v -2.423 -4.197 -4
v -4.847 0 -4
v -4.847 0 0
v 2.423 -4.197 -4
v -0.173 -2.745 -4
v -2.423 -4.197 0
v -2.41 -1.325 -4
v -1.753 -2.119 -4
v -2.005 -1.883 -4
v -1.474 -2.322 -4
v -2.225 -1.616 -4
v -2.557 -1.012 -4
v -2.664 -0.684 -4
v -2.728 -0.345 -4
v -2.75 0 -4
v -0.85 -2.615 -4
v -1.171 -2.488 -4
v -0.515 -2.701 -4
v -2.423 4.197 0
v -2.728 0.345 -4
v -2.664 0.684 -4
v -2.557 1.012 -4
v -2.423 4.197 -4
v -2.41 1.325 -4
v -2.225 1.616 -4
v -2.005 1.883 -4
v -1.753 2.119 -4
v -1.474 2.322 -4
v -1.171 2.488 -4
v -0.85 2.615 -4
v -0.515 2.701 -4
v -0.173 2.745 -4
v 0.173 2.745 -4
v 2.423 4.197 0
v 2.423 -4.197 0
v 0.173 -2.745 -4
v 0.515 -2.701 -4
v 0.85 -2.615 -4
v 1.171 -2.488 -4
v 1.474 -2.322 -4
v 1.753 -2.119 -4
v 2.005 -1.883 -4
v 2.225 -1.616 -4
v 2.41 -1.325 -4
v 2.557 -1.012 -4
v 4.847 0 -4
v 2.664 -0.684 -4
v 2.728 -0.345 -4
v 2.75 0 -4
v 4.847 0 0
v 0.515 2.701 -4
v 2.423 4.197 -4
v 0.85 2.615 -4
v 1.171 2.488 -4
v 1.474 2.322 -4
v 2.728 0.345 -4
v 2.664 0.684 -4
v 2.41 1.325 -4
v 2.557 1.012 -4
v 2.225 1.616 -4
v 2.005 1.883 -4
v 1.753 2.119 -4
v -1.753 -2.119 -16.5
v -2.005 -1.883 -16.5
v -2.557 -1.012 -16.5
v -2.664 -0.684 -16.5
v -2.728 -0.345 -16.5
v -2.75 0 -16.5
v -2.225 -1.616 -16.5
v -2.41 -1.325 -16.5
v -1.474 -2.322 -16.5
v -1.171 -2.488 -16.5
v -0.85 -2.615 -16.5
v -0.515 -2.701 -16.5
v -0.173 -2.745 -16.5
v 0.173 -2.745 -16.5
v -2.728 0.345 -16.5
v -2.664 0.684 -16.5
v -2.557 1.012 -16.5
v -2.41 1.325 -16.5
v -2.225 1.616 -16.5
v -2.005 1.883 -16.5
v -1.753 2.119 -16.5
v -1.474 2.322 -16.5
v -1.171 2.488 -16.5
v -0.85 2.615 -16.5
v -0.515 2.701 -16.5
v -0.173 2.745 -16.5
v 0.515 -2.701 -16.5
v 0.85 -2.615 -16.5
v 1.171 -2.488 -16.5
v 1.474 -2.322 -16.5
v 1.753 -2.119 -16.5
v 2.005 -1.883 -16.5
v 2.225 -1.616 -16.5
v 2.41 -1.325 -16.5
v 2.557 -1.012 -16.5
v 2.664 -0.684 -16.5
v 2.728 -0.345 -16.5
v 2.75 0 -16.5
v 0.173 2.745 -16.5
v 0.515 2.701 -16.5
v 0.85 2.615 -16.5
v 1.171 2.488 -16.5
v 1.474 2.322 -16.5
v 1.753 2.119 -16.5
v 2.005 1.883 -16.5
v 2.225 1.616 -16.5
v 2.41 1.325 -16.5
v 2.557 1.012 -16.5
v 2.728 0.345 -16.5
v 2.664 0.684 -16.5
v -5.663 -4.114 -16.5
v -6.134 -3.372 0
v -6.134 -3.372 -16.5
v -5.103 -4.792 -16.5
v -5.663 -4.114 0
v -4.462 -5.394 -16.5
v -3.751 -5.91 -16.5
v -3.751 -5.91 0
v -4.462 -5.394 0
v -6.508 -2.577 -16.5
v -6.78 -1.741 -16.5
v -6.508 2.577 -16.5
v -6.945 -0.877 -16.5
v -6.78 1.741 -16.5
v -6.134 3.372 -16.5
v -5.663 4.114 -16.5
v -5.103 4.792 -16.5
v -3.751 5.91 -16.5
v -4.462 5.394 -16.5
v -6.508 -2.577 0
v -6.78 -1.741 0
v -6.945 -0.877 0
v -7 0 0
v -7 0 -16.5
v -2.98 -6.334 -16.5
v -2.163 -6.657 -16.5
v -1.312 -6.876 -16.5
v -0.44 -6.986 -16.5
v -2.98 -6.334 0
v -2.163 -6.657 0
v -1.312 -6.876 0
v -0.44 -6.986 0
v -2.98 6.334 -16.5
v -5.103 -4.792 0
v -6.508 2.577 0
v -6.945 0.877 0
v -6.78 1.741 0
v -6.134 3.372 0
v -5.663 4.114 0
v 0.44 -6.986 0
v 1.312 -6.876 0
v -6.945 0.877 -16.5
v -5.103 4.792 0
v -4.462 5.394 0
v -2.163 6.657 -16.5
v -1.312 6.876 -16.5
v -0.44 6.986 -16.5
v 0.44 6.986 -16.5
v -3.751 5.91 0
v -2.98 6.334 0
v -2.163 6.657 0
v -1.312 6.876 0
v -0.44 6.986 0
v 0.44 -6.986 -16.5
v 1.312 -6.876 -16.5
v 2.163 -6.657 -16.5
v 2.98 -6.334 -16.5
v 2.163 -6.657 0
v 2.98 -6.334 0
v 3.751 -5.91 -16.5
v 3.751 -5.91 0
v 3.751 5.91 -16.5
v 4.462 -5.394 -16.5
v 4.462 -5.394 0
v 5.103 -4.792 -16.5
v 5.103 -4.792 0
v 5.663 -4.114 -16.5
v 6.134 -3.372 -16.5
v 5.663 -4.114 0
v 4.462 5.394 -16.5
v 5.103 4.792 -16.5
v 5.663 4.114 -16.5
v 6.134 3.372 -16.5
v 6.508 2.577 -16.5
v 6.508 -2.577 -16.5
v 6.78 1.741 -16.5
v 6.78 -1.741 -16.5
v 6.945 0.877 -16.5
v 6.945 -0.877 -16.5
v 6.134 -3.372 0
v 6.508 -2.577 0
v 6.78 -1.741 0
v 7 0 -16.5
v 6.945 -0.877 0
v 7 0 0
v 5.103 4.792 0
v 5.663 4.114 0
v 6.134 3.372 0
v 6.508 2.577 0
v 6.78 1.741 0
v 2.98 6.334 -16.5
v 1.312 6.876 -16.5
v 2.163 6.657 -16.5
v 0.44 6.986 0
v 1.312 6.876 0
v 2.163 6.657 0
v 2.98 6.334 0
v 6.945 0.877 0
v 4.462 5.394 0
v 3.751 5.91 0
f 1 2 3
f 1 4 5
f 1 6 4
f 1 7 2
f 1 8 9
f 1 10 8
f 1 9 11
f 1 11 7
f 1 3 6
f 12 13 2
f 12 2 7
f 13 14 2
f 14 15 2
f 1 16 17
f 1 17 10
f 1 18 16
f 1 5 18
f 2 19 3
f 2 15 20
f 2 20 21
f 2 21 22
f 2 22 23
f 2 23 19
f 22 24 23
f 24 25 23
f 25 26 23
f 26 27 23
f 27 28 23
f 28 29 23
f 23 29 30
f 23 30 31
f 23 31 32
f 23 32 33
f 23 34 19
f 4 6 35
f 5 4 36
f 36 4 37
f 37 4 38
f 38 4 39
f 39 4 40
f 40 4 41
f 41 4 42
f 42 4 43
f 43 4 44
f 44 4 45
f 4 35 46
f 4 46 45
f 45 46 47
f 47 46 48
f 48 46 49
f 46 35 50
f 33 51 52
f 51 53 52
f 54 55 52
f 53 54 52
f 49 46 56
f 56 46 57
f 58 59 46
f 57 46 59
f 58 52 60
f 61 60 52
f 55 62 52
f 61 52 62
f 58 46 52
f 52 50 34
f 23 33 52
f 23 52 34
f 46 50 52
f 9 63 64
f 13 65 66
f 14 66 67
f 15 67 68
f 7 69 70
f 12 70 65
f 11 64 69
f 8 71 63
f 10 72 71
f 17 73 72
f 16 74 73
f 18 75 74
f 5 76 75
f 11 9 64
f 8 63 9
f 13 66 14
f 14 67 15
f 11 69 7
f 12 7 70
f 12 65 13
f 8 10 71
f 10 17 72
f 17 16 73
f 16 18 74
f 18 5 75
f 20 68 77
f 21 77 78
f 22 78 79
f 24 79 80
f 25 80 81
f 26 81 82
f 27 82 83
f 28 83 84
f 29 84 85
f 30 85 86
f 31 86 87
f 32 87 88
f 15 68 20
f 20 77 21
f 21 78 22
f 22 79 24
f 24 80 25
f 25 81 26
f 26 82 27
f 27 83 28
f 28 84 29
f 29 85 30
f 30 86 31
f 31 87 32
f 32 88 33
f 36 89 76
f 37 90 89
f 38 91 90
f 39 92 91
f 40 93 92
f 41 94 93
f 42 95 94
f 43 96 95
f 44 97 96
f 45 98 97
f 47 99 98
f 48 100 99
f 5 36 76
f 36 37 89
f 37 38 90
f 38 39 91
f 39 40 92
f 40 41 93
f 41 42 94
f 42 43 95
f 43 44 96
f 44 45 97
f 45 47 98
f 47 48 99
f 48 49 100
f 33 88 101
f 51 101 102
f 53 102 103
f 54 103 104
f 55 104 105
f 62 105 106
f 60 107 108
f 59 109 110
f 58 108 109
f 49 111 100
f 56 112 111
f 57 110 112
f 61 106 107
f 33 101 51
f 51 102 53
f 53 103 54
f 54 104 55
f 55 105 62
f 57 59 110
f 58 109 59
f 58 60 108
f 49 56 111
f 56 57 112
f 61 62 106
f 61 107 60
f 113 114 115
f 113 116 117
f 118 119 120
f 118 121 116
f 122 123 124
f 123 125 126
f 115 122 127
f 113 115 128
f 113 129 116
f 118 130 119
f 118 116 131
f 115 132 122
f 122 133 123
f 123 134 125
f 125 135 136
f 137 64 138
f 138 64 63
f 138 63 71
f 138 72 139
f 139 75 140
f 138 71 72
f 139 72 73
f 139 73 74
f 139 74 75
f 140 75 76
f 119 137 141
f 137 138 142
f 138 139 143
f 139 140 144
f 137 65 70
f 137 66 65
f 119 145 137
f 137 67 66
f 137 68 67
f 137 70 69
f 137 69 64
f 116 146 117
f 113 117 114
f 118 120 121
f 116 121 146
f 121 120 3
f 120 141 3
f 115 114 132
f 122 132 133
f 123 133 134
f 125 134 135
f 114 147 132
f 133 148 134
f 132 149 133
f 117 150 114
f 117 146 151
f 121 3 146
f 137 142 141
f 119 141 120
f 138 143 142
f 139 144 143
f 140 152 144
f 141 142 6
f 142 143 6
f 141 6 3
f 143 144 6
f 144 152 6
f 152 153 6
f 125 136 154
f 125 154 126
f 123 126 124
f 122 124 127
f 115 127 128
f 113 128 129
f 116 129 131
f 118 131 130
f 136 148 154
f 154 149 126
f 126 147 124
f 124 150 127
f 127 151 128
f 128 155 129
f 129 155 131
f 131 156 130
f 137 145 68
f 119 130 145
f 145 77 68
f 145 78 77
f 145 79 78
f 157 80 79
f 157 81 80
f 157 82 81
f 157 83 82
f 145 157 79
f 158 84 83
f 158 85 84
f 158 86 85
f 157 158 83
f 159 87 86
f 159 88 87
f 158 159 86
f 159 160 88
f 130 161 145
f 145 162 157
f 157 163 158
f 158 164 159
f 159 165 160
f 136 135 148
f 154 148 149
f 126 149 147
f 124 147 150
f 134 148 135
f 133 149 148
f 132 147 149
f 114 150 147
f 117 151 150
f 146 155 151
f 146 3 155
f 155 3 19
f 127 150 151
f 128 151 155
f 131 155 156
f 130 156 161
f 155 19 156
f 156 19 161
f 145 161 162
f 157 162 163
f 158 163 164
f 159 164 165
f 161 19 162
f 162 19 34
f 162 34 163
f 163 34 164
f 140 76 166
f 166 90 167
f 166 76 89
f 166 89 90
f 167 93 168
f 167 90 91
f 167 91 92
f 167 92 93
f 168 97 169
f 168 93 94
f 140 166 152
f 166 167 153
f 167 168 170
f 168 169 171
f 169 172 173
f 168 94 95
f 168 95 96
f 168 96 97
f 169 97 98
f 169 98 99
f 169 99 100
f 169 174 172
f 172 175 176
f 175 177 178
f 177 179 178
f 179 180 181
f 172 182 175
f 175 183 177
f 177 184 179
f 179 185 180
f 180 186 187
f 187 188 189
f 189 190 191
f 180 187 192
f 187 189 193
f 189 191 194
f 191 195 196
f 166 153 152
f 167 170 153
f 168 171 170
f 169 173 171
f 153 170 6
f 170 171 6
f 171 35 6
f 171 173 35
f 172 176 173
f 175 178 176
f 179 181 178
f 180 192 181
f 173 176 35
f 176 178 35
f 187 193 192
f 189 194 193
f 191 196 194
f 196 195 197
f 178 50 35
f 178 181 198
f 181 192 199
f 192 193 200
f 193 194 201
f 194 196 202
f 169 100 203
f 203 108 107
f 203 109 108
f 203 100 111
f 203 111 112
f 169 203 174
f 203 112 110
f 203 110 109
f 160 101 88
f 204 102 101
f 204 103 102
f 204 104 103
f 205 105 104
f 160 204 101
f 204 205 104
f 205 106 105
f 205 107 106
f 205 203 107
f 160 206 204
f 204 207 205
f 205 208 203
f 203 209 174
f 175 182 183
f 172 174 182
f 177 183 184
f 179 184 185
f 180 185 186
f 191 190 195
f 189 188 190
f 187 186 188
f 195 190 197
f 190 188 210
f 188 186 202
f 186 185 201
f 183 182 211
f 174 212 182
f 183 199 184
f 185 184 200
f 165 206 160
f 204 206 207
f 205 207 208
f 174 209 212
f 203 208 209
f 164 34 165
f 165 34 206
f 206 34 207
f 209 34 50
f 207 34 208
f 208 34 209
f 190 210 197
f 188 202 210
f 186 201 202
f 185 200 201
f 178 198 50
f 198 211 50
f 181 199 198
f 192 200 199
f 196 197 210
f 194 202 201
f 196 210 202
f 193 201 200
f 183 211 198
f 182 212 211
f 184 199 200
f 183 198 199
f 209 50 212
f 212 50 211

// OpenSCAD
$fn = 50;

difference() {
	union() {
		translate(v = [0, 0, -16.5]) {
			cylinder(h = 16.5, r = 7.0);
		}
	}
	union() {
		translate(v = [0, 0, 0]) {
			rotate(a = [0, 0, 0]) {
				difference() {
					union() {
						translate(v = [0, 0, -4]) {
							linear_extrude(height = 4) {
								polygon(points = [[4.8468, 0.0], [2.4234000000000004, 4.197451927062417], [-2.423399999999999, 4.197451927062417], [-4.8468, 5.935618106107392e-16], [-2.423400000000002, -4.197451927062416], [2.423399999999997, -4.197451927062419]]);
							}
						}
					}
					union();
				}
			}
		}
		#translate(v = [0, 0, -100.0]) {
			cylinder(h = 200, r = 2.75);
		}
	}
}
